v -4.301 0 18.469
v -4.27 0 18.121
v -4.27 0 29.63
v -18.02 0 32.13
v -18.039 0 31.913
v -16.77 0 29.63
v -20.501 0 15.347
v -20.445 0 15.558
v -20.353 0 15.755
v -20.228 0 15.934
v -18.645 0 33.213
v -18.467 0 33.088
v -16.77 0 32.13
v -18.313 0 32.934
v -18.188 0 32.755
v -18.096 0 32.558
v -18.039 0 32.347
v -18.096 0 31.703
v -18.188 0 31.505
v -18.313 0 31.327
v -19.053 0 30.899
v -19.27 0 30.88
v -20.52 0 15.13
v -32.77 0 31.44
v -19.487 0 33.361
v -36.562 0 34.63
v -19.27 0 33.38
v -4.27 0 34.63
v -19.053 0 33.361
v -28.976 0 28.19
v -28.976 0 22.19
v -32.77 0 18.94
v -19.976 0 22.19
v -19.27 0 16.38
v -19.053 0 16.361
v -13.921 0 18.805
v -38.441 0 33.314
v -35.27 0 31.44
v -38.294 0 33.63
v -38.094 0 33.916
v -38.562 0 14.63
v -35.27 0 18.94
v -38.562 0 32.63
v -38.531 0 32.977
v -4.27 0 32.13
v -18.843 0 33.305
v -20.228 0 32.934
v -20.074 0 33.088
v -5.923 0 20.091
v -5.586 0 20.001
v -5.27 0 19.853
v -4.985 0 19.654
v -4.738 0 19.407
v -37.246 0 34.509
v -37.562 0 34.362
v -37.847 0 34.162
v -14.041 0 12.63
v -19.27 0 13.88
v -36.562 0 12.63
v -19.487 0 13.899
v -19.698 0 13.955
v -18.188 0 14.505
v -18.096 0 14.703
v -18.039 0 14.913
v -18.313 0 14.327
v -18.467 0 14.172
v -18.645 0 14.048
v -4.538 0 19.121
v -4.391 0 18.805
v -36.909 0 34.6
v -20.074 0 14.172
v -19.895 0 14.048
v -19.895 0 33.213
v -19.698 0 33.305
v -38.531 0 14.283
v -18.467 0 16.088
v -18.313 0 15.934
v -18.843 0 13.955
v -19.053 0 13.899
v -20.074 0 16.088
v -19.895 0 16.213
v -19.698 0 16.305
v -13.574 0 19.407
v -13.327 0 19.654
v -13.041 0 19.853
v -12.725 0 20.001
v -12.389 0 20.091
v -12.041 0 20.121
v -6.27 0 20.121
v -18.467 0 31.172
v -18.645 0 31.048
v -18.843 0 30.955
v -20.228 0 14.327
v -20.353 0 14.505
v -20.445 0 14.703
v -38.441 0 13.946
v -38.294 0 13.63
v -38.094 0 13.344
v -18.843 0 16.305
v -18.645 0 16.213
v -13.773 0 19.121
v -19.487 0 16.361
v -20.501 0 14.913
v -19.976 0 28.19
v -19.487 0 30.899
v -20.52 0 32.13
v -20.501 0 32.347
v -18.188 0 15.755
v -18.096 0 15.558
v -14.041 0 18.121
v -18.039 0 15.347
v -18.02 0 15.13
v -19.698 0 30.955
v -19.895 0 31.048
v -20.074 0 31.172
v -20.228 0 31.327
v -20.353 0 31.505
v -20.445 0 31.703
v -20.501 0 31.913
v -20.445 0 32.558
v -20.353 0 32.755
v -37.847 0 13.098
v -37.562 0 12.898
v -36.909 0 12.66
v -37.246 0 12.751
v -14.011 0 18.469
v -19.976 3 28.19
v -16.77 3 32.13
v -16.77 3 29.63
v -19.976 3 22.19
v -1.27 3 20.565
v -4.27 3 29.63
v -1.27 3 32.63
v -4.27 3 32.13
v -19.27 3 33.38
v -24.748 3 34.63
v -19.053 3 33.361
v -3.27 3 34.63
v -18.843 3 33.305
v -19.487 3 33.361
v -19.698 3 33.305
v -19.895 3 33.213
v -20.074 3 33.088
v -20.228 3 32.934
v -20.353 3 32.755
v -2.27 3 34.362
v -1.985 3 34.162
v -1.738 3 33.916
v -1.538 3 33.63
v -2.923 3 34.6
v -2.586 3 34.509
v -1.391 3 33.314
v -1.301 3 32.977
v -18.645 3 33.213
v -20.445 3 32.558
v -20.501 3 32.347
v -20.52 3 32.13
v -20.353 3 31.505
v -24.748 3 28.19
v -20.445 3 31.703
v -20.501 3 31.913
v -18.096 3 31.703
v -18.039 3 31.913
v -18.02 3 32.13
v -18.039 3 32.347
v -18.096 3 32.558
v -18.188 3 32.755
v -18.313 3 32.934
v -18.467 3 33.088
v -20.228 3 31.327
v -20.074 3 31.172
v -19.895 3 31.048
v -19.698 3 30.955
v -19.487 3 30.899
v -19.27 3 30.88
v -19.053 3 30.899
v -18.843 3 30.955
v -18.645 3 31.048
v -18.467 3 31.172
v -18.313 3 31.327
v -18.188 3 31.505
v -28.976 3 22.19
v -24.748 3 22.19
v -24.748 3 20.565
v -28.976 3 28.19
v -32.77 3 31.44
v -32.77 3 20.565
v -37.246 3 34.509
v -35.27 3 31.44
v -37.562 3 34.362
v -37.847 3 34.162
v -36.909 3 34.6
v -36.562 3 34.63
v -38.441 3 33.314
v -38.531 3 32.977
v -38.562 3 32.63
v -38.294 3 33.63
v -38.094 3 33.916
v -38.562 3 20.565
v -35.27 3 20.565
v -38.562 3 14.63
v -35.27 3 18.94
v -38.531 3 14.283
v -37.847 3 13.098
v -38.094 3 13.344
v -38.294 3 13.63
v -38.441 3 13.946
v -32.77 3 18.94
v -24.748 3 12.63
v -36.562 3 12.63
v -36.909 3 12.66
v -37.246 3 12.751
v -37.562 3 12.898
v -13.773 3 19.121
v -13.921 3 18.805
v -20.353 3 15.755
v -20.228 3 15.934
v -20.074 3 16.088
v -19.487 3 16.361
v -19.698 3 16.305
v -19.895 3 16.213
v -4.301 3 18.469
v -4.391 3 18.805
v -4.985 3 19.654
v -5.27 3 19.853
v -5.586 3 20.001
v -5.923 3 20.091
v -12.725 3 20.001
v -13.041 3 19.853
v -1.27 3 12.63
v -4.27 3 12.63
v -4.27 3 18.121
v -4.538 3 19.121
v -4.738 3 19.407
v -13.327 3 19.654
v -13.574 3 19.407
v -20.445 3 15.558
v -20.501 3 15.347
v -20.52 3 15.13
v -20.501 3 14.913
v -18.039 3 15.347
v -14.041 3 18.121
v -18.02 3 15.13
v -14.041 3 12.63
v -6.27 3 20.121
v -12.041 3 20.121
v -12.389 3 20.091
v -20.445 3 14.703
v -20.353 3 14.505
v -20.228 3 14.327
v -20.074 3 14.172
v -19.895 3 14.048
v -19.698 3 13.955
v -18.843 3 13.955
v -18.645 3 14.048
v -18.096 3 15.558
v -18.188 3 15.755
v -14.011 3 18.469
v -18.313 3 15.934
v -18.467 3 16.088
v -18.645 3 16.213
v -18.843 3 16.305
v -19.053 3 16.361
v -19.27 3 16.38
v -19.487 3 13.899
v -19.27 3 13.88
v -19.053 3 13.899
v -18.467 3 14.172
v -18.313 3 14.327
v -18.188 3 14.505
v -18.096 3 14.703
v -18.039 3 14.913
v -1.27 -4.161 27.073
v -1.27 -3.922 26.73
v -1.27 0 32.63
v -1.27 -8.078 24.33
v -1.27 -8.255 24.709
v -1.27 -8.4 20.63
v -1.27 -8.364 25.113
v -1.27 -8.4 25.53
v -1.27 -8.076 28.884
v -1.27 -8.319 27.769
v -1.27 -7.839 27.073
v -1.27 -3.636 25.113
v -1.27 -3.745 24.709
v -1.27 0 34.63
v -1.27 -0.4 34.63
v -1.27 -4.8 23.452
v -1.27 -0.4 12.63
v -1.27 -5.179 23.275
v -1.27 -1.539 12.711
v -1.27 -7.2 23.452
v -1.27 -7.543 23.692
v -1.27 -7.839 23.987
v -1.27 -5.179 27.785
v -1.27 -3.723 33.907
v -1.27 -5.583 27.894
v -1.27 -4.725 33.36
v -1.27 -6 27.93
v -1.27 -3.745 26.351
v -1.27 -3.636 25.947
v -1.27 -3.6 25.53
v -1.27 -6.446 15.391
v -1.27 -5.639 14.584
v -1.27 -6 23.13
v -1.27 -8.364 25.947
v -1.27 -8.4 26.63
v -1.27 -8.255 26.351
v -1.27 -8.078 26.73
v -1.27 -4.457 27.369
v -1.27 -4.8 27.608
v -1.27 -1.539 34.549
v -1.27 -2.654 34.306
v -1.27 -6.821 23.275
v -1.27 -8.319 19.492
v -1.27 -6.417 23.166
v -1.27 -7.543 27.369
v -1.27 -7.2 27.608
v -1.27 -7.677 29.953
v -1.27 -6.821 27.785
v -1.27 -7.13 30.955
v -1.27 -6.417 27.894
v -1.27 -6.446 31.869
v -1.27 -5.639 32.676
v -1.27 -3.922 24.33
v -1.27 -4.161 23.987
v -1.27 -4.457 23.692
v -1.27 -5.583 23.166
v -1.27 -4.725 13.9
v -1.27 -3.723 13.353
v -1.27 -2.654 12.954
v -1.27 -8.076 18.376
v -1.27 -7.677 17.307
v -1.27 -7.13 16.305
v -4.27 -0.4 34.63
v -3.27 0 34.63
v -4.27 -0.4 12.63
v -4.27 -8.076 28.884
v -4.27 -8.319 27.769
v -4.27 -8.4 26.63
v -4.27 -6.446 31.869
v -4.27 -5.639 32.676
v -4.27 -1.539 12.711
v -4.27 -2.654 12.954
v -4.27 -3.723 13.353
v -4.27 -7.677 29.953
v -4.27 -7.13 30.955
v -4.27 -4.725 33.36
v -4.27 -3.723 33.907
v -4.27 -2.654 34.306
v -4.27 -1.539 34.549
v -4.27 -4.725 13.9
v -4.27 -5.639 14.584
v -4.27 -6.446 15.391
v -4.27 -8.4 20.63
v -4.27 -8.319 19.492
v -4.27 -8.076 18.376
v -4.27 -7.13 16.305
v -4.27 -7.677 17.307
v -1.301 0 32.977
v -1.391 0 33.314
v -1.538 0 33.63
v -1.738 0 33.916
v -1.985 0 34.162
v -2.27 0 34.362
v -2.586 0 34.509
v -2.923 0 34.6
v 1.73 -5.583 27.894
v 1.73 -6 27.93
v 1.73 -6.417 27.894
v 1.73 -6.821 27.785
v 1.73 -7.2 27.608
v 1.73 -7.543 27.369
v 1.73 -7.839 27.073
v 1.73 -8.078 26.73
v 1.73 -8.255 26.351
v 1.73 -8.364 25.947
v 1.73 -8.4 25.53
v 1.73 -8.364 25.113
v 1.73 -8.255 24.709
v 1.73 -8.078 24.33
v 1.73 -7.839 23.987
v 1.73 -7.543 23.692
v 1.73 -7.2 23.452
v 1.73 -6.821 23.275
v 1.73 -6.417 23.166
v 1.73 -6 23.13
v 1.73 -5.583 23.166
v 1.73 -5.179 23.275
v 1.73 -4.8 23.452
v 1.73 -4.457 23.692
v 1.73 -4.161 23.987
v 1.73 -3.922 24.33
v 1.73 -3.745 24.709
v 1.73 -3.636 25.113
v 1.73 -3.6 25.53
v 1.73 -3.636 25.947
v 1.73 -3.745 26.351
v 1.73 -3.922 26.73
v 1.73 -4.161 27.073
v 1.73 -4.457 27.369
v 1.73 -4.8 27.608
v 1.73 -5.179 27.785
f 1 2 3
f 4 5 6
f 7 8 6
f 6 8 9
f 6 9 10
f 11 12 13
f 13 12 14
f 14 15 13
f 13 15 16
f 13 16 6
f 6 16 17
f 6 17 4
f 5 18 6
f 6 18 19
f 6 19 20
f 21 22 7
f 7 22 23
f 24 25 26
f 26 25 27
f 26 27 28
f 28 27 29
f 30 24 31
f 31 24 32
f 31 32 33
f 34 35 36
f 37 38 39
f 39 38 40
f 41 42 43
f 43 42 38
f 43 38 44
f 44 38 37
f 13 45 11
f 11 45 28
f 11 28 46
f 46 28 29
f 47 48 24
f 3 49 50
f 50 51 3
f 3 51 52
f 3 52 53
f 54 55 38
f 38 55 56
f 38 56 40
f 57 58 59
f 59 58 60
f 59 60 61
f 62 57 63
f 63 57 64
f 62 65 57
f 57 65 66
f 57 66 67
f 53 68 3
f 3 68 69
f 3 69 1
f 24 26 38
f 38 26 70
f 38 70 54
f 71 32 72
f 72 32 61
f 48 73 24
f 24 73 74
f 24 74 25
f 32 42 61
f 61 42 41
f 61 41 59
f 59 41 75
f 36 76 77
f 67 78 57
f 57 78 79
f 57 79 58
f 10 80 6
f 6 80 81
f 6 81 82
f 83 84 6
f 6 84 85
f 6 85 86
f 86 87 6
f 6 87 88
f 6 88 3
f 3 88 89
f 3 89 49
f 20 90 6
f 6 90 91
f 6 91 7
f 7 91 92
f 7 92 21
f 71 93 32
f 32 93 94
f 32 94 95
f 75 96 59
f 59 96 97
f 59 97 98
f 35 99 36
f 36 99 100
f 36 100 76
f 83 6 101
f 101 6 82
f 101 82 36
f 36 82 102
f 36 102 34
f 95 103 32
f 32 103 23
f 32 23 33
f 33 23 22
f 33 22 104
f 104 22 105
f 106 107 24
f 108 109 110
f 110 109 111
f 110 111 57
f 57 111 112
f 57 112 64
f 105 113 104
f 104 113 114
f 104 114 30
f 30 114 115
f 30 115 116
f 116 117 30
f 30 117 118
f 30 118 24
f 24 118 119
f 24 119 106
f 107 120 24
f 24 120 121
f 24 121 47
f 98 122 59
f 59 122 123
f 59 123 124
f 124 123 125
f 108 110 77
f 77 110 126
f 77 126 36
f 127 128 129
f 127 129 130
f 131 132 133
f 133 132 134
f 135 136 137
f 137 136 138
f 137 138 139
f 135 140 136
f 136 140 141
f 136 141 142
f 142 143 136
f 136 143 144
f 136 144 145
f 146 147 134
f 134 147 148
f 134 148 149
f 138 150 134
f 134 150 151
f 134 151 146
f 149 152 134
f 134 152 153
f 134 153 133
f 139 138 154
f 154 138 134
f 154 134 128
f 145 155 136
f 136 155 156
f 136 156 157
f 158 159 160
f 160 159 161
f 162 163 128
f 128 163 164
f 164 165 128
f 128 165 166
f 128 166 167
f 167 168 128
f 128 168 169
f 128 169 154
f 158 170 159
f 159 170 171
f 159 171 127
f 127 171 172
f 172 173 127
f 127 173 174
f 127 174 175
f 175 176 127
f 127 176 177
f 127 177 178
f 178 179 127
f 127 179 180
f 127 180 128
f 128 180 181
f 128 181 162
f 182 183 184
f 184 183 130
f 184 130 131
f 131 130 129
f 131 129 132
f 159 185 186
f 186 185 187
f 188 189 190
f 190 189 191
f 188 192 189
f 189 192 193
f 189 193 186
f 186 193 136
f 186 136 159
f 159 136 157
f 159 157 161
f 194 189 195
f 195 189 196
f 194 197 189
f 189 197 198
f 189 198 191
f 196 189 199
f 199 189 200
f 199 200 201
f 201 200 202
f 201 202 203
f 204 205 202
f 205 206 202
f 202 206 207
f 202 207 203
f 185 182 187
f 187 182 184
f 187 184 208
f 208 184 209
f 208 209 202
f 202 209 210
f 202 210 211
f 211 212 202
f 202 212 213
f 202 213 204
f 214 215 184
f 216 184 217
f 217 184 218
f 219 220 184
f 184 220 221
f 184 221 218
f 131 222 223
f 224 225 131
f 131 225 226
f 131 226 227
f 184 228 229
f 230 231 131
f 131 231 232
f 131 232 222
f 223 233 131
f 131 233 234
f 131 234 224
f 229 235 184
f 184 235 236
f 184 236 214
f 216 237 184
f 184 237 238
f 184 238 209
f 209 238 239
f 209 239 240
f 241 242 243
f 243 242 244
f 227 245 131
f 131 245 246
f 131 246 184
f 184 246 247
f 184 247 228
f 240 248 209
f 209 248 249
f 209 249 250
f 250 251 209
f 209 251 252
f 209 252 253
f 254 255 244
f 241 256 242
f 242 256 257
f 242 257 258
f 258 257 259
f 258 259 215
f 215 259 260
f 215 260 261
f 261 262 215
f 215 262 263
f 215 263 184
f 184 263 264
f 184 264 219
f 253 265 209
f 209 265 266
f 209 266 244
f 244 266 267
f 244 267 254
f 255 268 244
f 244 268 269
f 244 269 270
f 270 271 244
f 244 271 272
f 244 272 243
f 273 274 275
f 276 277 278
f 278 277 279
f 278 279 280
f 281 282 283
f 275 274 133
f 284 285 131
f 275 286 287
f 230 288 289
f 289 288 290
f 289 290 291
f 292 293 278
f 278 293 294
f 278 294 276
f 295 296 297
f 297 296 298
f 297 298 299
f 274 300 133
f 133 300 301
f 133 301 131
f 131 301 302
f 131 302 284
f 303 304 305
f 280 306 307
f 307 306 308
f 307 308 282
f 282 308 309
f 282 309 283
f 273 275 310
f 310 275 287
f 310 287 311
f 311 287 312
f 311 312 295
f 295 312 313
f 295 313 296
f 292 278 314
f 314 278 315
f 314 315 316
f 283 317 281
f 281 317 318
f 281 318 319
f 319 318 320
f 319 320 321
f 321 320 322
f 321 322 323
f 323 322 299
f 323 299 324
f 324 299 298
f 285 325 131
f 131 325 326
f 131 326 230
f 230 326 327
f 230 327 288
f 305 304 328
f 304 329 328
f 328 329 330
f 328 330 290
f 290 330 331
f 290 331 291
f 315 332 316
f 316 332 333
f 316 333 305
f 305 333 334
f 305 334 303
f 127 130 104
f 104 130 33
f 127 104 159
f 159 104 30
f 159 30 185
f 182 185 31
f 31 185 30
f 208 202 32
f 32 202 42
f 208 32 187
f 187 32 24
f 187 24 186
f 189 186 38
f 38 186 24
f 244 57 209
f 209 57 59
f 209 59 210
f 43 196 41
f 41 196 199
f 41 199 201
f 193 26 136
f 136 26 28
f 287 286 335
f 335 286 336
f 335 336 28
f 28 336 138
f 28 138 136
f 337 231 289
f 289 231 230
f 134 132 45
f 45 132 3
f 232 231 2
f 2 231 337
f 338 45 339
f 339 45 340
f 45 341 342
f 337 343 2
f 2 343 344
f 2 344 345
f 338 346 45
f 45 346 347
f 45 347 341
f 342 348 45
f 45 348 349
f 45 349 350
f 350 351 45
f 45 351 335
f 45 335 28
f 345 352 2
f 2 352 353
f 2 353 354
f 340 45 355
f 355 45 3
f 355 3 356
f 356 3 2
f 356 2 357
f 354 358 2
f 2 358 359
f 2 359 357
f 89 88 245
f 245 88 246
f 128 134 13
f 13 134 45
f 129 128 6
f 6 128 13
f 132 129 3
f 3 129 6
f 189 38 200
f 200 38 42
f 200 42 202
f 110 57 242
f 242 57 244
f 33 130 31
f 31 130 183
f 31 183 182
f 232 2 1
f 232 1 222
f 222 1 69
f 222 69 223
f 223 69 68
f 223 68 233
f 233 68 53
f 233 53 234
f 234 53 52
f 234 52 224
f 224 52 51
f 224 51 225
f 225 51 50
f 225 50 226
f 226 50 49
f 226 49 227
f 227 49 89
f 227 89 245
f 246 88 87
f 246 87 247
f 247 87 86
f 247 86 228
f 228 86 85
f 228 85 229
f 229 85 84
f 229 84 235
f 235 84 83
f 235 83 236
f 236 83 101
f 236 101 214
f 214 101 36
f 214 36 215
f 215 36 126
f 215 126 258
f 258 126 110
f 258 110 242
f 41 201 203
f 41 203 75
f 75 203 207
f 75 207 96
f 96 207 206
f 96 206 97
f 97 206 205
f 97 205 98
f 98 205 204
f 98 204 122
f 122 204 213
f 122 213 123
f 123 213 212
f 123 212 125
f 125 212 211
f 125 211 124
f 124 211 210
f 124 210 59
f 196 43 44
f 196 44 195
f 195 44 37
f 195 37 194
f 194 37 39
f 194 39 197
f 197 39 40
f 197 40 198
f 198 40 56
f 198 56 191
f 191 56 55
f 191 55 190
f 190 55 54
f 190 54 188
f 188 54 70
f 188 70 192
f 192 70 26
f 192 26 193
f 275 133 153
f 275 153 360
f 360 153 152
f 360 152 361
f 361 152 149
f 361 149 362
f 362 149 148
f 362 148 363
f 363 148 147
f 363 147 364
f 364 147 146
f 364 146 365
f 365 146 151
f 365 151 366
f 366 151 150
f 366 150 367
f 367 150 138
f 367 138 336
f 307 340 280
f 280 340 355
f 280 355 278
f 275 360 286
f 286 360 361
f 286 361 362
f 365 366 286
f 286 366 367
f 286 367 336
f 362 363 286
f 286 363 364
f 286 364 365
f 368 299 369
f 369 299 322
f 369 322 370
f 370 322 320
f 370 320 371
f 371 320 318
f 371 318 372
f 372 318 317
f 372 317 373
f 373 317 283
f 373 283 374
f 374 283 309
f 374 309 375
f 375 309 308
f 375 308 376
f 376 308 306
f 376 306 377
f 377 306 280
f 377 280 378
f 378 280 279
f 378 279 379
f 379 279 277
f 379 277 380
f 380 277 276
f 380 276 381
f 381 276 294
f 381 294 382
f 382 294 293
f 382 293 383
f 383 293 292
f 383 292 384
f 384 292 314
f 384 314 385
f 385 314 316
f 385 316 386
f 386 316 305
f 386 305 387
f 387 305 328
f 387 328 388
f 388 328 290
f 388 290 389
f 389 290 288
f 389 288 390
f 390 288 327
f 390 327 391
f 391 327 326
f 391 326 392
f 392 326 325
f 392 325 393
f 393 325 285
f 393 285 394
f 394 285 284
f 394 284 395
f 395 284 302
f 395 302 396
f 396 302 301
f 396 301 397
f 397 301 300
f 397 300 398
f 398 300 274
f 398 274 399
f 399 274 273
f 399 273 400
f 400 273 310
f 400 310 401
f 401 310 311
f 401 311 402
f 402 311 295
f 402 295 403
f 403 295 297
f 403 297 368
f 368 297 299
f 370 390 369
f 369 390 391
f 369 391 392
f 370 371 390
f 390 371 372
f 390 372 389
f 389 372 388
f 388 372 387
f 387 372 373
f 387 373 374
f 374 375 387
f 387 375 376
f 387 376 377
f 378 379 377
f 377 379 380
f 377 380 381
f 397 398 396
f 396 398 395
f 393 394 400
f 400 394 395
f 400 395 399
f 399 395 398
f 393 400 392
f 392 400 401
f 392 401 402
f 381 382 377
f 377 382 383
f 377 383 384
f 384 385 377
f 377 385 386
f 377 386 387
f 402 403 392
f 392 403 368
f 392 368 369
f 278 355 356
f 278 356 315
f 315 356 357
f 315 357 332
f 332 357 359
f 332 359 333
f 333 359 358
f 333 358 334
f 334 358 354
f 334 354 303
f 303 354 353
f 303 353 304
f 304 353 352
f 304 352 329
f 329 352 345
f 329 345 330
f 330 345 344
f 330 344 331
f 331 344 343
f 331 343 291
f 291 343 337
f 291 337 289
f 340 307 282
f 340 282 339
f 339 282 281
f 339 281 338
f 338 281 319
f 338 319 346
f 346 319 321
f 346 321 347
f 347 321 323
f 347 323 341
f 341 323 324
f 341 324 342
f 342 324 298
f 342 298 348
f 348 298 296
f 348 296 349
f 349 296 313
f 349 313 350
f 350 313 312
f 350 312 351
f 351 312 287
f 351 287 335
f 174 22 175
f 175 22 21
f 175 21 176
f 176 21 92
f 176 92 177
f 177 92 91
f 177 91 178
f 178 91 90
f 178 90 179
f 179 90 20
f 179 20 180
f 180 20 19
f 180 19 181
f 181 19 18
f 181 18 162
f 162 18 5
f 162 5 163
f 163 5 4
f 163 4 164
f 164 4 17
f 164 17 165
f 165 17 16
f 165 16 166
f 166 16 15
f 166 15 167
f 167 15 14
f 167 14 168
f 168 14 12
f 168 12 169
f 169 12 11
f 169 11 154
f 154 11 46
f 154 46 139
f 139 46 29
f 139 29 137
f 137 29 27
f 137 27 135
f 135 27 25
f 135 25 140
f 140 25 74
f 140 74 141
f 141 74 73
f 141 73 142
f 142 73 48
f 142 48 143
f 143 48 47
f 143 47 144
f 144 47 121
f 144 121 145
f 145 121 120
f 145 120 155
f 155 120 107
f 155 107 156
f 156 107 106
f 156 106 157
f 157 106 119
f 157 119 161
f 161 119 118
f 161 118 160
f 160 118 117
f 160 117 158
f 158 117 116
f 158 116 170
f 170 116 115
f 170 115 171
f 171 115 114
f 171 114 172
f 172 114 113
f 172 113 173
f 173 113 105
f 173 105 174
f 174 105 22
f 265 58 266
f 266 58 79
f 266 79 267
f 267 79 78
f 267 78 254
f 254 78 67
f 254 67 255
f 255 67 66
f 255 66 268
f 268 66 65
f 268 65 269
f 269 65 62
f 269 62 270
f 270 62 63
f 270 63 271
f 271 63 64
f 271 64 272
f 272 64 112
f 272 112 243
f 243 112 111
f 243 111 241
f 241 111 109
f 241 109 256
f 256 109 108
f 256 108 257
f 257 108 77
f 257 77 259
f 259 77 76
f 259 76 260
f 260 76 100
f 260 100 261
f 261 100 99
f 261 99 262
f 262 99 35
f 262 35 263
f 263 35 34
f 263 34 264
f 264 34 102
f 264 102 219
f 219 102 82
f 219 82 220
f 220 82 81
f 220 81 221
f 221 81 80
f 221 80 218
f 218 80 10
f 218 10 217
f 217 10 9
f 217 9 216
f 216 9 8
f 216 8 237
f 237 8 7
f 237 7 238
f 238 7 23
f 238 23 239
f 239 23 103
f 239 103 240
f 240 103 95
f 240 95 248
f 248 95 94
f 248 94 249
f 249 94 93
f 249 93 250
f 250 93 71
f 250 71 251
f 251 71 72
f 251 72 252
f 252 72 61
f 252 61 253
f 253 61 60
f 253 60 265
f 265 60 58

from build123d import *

# Parameters (mm, degrees)
SKETCH1_W           = 12.5
SKETCH1_H           = 2.5
SKETCH1_W_2         = 2.5
SKETCH1_H_2         = 12.5
SKETCH1_W_3         = 9
SKETCH1_H_3         = 6
BOSS_EXTRUDE1_DEPTH = 3
FILLET1_R           = 2
SKETCH1_4_W         = 3
SKETCH1_4_H         = 22
BOSS_EXTRUDE2_DEPTH = 8.4
SKETCH2_R           = 2.4
BOSS_EXTRUDE3_DEPTH = 3
FILLET2_R           = 8
SKETCH1_7_R         = 1.25
CUT_EXTRUDE2_DEPTH  = 53.505324486


with BuildPart() as part:
    # Sketch1 → Boss-Extrude1 (new body)
    with BuildSketch(Plane(origin=(0, 0, 0), x_dir=(1, 0, 0), z_dir=(0, 1, 0))):
        Polygon((-38.561763486, -34.630037485), (-1.270220731, -34.630037485), (-1.270220731, -12.630037485), (-4.270220731, -12.630037485), (-4.270220731, -20.12144272), (-14.041444449, -20.12144272), (-14.041444449, -12.630037485), (-38.561763486, -12.630037485), align=None)
        with Locations((-10.520220731, -30.880037485)):
            Rectangle(SKETCH1_W, SKETCH1_H, mode=Mode.SUBTRACT)
        with Locations((-34.020220731, -25.190037485)):
            Rectangle(SKETCH1_W_2, SKETCH1_H_2, mode=Mode.SUBTRACT)
        with Locations((-24.475907507, -25.190037485)):
            Rectangle(SKETCH1_W_3, SKETCH1_H_3, mode=Mode.SUBTRACT)
    extrude(amount=BOSS_EXTRUDE1_DEPTH)

    # Fillet1
    fillet1_edges = [part.edges().sort_by_distance(p)[0] for p in [
        (-38.561763486, 1.5, 12.630037485),
        (-38.561763486, 1.5, 34.630037485),
        (-1.270220731, 1.5, 34.630037485),
        (-14.041444449, 1.5, 20.12144272),
        (-4.270220731, 1.5, 20.12144272),
    ]]
    fillet(fillet1_edges, radius=FILLET1_R)

    # Sketch1<4> → Boss-Extrude2 (add)
    with BuildSketch(Plane(origin=(0, 0, 0), x_dir=(1, 0, 0), z_dir=(0, 1, 0))):
        with Locations((-2.770220731, -23.630037485)):
            Rectangle(SKETCH1_4_W, SKETCH1_4_H)
    extrude(amount=-BOSS_EXTRUDE2_DEPTH)

    # Sketch2 → Boss-Extrude3 (add)
    with BuildSketch(Plane(origin=(-1.270220731, 0, 0), x_dir=(0, 0, -1), z_dir=(1, 0, 0))):
        with Locations((-25.530037485, -6)):
            Circle(SKETCH2_R)
    extrude(amount=BOSS_EXTRUDE3_DEPTH)

    # Fillet2
    fillet2_edges = [part.edges().sort_by_distance(p)[0] for p in [
        (-2.770220731, -8.4, 12.630037485),
        (-2.770220731, -8.4, 34.630037485),
    ]]
    fillet(fillet2_edges, radius=FILLET2_R)

    # Sketch1<7> → Cut-Extrude2 (cut, through all)
    with BuildSketch(Plane(origin=(0, 0, 0), x_dir=(1, 0, 0), z_dir=(0, 1, 0))):
        with Locations((-19.270220731, -32.130037485)):
            Circle(SKETCH1_7_R)
        with Locations((-19.270220731, -15.130037485)):
            Circle(SKETCH1_7_R)
    extrude(amount=CUT_EXTRUDE2_DEPTH, mode=Mode.SUBTRACT)


solid = part.part
